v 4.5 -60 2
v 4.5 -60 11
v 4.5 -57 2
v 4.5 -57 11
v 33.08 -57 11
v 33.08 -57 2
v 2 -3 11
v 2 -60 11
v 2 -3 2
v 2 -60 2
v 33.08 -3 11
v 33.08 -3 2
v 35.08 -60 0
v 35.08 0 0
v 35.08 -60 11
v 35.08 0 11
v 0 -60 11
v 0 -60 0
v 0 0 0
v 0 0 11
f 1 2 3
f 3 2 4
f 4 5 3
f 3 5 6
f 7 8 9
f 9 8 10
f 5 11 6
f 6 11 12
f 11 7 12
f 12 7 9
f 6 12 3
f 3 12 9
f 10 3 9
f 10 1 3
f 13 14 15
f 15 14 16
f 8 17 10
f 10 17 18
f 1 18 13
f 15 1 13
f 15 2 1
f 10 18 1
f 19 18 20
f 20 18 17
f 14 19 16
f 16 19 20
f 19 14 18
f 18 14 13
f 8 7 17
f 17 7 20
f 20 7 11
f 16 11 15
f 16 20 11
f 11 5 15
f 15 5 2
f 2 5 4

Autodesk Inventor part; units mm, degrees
ref_plane "YZ Plane" through (0, 0, 0) normal (1, 0, 0) x (0, 1, 0)
ref_plane "XZ Plane" through (0, 0, 0) normal (0, 1, 0) x (-1, 0, 0)
ref_plane "XY Plane" through (0, 0, 0) normal (0, 0, 1) x (1, 0, 0)
sketch "Sketch1" plane through (0, 0, 0) normal (0, 0, 1) x (1, 0, 0)
  line L0 (0, 0) -> (35.08, 0)
  line L1 (35.08, 0) -> (35.08, -60)
  line L2 (35.08, -60) -> (0, -60)
  line L3 (0, -60) -> (0, 0)
  dimension "d0" = 35.08
  dimension "d1" = 60
extrude "Extrusion1" add sketch "Sketch1" along normal blind 11
sketch "Sketch2" plane through (0, 0, 11) normal (0, 0, 1) x (1, 0, 0)
  line L0 (2, -3) -> (33.08, -3)
  line L1 (33.08, -3) -> (33.08, -57)
  line L2 (33.08, -57) -> (2, -57)
  line L3 (2, -57) -> (2, -3)
  line L4 (0, 0) -> (35.08, 0) projected
  line L5 (0, -60) -> (35.08, -60) projected
  line L6 (35.08, 0) -> (35.08, -60) projected
  line L7 (0, 0) -> (0, -60) projected
  dimension "d8" = 3
  dimension "d9" = 3
  dimension "d10" = 2
  dimension "d11" = 2
extrude "Extrusion2" cut sketch "Sketch2" against normal blind 9 contours L0 L1 L2 L3
sketch "Sketch4" plane through (0, -60, 0) normal (0, -1, 0) x (1, 0, 0)
  line L0 (2, 11) -> (2, 2) projected
  line L1 (2, 11) -> (2, 2)
  line L2 (2, 2) -> (4.5, 2)
  line L3 (2, 2) -> (33.08, 2) projected
  line L4 (4.5, 2) -> (4.5, 11)
  line L5 (2, 11) -> (4.5, 11)
  line L6 (0, 0) -> (0, 11) projected
  dimension "d22" = 9
  dimension "d23" = 4.5
extrude "Extrusion3" cut sketch "Sketch4" against normal blind 3
properties part number "prueba1Bateria"
